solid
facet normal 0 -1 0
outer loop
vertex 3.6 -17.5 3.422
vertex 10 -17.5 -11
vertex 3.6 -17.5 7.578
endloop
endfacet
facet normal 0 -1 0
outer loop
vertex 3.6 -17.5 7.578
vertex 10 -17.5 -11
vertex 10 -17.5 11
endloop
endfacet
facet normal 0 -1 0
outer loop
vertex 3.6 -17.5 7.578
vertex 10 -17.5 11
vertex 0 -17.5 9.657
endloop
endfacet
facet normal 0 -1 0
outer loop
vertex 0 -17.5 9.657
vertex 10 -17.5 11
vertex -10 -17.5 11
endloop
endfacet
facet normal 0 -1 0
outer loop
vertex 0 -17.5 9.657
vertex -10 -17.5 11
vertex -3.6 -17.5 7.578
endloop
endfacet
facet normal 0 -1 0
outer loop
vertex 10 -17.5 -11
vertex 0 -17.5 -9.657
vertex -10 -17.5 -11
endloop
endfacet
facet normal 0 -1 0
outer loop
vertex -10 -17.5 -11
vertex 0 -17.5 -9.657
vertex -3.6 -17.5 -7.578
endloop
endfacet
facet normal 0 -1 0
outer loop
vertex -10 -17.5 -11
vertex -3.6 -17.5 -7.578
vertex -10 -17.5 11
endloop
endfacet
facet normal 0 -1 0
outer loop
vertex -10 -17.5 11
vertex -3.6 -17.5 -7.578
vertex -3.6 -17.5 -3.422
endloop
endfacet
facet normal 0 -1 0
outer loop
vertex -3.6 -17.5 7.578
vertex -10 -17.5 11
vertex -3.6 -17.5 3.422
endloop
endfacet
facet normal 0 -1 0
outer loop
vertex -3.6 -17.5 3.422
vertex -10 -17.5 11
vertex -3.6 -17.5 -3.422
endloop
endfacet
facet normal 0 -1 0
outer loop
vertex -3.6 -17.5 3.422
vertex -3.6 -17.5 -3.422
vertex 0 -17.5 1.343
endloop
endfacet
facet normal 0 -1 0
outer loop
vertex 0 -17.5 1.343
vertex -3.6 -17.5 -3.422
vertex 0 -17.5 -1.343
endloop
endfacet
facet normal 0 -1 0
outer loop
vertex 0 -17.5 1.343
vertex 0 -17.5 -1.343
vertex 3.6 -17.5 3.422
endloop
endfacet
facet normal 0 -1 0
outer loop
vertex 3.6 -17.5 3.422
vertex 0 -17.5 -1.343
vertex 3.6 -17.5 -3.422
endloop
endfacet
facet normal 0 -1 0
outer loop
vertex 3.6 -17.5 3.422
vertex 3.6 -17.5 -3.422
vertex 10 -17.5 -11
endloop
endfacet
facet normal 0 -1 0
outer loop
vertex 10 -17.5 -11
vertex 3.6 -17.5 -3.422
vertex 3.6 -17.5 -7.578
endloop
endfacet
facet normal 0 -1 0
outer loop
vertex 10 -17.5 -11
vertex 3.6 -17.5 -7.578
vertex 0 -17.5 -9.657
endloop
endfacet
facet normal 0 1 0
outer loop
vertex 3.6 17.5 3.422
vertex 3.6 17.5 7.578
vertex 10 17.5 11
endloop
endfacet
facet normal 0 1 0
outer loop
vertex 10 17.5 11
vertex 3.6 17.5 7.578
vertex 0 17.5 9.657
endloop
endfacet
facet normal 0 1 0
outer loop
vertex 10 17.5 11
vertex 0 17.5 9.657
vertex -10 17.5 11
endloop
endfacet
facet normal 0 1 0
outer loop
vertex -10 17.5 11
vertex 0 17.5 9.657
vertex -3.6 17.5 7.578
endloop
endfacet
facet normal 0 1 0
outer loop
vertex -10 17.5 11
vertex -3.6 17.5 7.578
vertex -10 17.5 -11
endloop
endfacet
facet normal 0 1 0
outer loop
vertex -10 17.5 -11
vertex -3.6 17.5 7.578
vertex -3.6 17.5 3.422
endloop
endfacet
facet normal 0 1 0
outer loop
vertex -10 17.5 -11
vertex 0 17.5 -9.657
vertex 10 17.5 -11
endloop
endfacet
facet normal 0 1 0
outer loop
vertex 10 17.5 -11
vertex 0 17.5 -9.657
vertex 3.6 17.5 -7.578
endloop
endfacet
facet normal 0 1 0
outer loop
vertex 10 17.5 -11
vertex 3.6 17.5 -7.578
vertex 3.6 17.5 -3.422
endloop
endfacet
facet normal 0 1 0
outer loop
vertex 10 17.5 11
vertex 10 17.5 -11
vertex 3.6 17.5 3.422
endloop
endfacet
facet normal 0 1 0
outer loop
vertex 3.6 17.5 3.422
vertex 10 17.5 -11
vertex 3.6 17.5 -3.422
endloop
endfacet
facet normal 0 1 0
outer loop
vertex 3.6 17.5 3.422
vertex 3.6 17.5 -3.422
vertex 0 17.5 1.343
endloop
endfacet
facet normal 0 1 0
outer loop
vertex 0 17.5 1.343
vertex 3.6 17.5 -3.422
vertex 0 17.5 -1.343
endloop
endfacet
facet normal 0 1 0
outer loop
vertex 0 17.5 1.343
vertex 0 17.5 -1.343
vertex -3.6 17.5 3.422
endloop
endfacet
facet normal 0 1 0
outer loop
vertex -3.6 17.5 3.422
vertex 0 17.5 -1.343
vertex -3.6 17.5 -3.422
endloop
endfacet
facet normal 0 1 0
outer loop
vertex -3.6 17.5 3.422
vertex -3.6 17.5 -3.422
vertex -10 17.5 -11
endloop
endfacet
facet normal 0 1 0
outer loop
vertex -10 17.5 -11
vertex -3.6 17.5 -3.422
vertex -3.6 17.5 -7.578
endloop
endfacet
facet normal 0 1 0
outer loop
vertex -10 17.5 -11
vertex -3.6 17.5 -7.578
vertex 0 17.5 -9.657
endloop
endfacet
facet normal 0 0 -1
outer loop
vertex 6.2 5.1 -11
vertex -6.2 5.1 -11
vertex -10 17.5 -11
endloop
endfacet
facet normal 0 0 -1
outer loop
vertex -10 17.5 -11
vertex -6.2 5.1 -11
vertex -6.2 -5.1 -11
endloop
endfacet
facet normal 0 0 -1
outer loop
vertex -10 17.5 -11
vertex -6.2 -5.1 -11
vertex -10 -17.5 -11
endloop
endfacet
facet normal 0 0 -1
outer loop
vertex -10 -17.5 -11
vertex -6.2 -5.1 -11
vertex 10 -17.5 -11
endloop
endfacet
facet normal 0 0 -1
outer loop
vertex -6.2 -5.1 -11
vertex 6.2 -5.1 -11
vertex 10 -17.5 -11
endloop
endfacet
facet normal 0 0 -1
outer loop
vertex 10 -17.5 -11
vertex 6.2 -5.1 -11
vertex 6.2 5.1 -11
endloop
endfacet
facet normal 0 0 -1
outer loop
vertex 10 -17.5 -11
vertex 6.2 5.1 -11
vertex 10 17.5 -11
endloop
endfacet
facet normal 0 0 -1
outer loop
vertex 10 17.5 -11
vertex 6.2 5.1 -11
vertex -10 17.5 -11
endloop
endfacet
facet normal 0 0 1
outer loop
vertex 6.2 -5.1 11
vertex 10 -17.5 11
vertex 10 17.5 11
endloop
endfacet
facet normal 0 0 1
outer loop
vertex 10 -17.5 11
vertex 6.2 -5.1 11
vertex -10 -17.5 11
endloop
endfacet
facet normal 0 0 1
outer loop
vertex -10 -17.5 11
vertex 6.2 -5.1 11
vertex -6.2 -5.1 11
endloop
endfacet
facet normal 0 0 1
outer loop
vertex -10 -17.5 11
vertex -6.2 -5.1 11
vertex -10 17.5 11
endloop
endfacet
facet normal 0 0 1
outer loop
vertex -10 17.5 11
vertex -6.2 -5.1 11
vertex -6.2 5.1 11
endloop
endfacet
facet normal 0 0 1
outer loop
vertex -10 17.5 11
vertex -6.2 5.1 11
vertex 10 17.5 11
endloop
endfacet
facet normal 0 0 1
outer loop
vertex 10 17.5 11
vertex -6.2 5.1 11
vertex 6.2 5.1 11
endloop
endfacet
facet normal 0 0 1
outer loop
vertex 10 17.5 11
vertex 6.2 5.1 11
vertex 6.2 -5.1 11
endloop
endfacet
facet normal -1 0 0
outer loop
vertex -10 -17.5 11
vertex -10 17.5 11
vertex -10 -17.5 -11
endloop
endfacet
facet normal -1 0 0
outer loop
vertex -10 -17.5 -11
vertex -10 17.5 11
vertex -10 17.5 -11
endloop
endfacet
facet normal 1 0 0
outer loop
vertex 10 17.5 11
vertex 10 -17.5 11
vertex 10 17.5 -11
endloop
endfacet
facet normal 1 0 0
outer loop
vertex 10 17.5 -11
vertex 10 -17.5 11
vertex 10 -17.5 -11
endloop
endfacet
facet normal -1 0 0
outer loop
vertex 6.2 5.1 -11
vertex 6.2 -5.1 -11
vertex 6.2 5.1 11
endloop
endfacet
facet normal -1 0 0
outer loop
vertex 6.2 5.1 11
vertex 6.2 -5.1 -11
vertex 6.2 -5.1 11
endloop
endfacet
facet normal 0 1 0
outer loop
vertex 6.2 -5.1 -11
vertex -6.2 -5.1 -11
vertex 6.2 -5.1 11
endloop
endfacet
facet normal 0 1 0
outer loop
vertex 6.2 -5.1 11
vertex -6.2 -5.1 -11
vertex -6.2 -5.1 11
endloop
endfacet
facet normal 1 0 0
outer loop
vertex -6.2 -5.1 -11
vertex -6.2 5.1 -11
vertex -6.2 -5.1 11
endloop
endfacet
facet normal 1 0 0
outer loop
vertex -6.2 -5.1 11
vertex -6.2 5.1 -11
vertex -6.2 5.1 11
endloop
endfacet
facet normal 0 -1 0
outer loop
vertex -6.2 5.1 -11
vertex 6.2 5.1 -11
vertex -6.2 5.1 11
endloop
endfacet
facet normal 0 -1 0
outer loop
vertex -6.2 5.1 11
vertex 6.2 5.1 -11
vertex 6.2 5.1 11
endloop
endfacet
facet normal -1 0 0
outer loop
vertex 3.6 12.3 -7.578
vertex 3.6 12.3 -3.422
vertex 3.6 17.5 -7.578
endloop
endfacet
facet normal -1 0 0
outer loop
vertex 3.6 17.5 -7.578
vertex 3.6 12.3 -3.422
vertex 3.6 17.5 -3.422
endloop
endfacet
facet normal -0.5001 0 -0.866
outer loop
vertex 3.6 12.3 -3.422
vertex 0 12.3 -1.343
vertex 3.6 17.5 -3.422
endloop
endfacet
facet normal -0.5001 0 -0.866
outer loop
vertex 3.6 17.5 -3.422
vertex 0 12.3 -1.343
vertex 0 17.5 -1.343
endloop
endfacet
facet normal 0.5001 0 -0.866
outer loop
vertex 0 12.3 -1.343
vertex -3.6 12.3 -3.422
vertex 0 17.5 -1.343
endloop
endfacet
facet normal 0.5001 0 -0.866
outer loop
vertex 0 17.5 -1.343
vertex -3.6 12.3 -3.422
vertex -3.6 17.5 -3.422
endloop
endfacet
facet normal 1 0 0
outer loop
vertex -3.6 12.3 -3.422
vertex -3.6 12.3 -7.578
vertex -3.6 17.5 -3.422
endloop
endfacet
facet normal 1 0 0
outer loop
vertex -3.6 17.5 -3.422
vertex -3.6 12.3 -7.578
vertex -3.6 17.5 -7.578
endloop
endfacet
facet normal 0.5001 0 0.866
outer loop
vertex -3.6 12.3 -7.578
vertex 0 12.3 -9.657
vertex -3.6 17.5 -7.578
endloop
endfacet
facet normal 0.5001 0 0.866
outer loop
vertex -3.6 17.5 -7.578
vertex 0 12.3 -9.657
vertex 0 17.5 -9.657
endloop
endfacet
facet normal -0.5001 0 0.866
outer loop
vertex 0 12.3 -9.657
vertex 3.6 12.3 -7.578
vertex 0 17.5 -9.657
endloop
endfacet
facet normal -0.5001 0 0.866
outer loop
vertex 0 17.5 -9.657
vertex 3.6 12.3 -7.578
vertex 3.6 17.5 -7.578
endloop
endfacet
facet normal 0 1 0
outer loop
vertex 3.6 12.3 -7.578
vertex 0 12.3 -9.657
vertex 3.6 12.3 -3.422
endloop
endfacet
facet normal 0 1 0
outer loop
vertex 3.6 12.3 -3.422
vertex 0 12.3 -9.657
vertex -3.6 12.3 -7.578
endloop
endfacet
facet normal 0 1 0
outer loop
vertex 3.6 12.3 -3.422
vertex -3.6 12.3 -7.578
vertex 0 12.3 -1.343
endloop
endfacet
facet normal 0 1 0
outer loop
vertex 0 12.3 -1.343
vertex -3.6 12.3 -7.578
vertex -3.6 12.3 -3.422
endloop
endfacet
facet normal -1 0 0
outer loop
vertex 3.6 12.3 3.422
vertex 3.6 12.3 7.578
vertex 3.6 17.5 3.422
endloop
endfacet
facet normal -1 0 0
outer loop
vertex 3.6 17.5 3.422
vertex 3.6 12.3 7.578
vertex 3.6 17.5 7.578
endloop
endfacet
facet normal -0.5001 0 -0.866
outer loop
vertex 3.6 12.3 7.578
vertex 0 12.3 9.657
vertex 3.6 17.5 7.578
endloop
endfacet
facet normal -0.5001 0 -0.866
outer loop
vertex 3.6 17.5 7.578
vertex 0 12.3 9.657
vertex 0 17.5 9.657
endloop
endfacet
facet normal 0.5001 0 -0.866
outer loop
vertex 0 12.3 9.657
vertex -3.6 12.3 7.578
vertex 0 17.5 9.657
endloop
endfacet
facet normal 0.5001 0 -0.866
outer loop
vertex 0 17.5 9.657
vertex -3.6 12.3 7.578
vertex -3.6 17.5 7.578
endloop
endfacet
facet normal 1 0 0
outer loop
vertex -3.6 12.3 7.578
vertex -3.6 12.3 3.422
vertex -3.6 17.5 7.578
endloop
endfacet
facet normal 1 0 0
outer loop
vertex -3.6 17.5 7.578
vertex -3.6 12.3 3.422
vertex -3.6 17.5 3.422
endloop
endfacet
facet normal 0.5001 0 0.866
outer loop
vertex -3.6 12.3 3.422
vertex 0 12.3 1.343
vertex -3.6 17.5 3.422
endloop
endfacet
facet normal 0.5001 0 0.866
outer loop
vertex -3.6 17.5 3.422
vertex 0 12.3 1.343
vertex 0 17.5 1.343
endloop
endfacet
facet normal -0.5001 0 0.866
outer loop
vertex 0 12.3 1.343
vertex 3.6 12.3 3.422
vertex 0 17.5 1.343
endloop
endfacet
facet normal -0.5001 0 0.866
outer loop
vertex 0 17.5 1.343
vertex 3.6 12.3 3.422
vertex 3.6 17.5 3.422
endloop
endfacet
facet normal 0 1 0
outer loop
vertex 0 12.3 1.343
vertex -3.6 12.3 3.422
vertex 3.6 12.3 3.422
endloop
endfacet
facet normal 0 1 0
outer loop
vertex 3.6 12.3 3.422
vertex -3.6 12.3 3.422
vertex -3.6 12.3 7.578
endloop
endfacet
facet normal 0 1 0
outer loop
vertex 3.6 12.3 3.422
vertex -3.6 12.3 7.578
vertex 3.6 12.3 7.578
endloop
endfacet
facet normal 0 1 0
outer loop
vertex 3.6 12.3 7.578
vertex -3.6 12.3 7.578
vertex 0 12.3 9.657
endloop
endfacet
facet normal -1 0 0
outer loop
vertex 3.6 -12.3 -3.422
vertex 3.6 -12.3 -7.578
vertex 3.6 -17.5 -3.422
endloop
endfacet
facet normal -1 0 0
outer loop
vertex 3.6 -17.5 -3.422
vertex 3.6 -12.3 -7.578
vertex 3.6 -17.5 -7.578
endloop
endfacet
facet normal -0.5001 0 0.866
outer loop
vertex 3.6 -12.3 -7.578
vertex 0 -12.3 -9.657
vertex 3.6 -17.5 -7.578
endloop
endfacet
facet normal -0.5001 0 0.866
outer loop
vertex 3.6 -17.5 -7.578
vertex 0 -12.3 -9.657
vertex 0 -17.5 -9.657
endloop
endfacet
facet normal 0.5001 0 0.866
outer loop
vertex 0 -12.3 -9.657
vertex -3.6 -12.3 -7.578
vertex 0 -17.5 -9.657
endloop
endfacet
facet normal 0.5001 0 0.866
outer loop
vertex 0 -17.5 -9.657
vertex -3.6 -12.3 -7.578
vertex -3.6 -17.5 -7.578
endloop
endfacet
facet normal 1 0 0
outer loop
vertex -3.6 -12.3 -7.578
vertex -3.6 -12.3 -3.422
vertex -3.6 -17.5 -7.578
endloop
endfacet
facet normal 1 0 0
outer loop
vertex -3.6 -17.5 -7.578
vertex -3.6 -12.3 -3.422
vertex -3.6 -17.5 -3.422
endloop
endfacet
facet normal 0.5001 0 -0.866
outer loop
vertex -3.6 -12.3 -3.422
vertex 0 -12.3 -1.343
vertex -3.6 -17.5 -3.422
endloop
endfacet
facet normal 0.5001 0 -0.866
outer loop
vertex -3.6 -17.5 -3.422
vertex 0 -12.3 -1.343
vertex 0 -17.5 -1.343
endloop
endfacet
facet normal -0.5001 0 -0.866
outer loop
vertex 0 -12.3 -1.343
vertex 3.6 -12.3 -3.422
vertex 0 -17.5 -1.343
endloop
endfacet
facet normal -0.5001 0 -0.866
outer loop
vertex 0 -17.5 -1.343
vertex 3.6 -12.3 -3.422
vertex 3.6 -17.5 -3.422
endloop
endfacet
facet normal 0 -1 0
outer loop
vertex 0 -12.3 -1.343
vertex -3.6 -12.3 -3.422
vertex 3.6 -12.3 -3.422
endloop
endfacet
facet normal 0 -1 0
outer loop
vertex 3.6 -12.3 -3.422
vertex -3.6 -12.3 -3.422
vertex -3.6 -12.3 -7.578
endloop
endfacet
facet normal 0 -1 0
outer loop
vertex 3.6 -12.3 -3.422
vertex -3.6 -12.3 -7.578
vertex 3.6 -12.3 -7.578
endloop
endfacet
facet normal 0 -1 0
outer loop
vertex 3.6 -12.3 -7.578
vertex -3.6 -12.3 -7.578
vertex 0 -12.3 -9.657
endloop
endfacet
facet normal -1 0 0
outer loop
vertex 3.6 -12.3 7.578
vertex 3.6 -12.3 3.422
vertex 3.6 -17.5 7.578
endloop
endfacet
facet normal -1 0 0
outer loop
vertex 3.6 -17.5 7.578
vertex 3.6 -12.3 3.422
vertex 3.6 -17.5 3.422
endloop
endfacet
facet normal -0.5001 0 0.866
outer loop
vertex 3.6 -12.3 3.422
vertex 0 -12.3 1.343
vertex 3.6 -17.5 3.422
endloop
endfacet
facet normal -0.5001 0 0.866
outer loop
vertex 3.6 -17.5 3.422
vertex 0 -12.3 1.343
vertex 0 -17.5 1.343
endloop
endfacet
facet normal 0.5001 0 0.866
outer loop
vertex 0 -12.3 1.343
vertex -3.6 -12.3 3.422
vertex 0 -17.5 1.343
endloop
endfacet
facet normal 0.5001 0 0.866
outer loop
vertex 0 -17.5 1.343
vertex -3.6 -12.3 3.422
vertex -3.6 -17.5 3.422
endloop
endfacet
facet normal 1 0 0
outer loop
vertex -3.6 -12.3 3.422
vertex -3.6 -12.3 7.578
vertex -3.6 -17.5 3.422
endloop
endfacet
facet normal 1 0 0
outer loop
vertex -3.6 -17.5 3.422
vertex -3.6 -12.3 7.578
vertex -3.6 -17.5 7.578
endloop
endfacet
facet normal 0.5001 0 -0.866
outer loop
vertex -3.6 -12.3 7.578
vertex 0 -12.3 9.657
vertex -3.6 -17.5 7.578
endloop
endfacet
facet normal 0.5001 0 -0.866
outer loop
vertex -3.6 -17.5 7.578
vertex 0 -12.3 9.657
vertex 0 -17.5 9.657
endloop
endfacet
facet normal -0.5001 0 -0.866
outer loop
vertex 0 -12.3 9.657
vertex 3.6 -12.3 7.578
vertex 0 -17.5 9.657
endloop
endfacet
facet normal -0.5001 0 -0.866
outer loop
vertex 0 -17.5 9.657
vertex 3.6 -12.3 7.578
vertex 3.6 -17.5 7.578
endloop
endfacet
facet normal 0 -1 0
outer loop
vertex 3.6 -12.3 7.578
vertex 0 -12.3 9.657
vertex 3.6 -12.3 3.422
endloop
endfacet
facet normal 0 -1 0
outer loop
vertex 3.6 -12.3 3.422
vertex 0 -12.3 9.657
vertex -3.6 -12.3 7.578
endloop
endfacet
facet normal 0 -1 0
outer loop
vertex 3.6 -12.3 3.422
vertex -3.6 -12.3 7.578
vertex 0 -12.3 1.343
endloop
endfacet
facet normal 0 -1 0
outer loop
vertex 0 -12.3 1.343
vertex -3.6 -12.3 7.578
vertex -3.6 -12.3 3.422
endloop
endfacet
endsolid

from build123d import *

# Parameters (mm, degrees)
BOSS_EXTRUDE1_DEPTH                      = 10
BOSS_EXTRUDE1_DEPTH_BACK                 = 10
SKETCH1_W                                = 22
SKETCH1_H                                = 35
CUT_EXTRUDE1_DEPTH                       = 30.837057496
CUT_EXTRUDE1_DEPTH_BACK                  = 30.837057496
SKETCH2_W                                = 12.4
SKETCH2_H                                = 10.2
CUT_EXTRUDE2_DEPTH                       = 5.2
MIRROR1_AT_THE_SECOND_PLANE_COPY_1_DEPTH = 5.2


with BuildPart() as part:
    # Sketch1 → Boss-Extrude1 (new, two sides: drawn at the far end of the back side and taken through both)
    with BuildSketch(Plane(origin=(0, 0, 0), x_dir=(0, 0, -1), z_dir=(1, 0, 0)).offset(-BOSS_EXTRUDE1_DEPTH_BACK)):
        Rectangle(SKETCH1_W, SKETCH1_H)
    extrude(amount=BOSS_EXTRUDE1_DEPTH + BOSS_EXTRUDE1_DEPTH_BACK)

    # Sketch2 → Cut-Extrude1 (cut, two sides: drawn at the far end of the back side and taken through both)
    with BuildSketch(Plane.XY.offset(11).offset(-CUT_EXTRUDE1_DEPTH_BACK)):
        Rectangle(SKETCH2_W, SKETCH2_H)
    extrude(amount=CUT_EXTRUDE1_DEPTH + CUT_EXTRUDE1_DEPTH_BACK, mode=Mode.SUBTRACT)

    # Sketch3 → Cut-Extrude2 (cut)
    with BuildSketch(Plane(origin=(0, 17.5, 0), x_dir=(1, 0, 0), z_dir=(0, 1, 0))):
        Polygon((3.6, 7.578460969), (0, 9.656921938), (-3.6, 7.578460969), (-3.6, 3.421539031), (0, 1.343078062), (3.6, 3.421539031), align=None)
    cut_extrude2 = extrude(amount=-CUT_EXTRUDE2_DEPTH, mode=Mode.SUBTRACT)

    # Mirror1: Cut-Extrude2 across plane
    add(cut_extrude2.mirror(Plane.ZX), mode=Mode.SUBTRACT)

    # Mirror1 at the second plane: Cut-Extrude2 across plane
    add(cut_extrude2.mirror(Plane.XY), mode=Mode.SUBTRACT)

    # Mirror1 at the second plane copy 1 sketc → Mirror1 at the second plane copy 1 (cut)
    with BuildSketch(Plane.XZ.offset(17.5)):
        Polygon((3.6, 7.578460969), (0, 9.656921938), (-3.6, 7.578460969), (-3.6, 3.421539031), (0, 1.343078062), (3.6, 3.421539031), align=None)
    extrude(amount=-MIRROR1_AT_THE_SECOND_PLANE_COPY_1_DEPTH, mode=Mode.SUBTRACT)


solid = part.part
